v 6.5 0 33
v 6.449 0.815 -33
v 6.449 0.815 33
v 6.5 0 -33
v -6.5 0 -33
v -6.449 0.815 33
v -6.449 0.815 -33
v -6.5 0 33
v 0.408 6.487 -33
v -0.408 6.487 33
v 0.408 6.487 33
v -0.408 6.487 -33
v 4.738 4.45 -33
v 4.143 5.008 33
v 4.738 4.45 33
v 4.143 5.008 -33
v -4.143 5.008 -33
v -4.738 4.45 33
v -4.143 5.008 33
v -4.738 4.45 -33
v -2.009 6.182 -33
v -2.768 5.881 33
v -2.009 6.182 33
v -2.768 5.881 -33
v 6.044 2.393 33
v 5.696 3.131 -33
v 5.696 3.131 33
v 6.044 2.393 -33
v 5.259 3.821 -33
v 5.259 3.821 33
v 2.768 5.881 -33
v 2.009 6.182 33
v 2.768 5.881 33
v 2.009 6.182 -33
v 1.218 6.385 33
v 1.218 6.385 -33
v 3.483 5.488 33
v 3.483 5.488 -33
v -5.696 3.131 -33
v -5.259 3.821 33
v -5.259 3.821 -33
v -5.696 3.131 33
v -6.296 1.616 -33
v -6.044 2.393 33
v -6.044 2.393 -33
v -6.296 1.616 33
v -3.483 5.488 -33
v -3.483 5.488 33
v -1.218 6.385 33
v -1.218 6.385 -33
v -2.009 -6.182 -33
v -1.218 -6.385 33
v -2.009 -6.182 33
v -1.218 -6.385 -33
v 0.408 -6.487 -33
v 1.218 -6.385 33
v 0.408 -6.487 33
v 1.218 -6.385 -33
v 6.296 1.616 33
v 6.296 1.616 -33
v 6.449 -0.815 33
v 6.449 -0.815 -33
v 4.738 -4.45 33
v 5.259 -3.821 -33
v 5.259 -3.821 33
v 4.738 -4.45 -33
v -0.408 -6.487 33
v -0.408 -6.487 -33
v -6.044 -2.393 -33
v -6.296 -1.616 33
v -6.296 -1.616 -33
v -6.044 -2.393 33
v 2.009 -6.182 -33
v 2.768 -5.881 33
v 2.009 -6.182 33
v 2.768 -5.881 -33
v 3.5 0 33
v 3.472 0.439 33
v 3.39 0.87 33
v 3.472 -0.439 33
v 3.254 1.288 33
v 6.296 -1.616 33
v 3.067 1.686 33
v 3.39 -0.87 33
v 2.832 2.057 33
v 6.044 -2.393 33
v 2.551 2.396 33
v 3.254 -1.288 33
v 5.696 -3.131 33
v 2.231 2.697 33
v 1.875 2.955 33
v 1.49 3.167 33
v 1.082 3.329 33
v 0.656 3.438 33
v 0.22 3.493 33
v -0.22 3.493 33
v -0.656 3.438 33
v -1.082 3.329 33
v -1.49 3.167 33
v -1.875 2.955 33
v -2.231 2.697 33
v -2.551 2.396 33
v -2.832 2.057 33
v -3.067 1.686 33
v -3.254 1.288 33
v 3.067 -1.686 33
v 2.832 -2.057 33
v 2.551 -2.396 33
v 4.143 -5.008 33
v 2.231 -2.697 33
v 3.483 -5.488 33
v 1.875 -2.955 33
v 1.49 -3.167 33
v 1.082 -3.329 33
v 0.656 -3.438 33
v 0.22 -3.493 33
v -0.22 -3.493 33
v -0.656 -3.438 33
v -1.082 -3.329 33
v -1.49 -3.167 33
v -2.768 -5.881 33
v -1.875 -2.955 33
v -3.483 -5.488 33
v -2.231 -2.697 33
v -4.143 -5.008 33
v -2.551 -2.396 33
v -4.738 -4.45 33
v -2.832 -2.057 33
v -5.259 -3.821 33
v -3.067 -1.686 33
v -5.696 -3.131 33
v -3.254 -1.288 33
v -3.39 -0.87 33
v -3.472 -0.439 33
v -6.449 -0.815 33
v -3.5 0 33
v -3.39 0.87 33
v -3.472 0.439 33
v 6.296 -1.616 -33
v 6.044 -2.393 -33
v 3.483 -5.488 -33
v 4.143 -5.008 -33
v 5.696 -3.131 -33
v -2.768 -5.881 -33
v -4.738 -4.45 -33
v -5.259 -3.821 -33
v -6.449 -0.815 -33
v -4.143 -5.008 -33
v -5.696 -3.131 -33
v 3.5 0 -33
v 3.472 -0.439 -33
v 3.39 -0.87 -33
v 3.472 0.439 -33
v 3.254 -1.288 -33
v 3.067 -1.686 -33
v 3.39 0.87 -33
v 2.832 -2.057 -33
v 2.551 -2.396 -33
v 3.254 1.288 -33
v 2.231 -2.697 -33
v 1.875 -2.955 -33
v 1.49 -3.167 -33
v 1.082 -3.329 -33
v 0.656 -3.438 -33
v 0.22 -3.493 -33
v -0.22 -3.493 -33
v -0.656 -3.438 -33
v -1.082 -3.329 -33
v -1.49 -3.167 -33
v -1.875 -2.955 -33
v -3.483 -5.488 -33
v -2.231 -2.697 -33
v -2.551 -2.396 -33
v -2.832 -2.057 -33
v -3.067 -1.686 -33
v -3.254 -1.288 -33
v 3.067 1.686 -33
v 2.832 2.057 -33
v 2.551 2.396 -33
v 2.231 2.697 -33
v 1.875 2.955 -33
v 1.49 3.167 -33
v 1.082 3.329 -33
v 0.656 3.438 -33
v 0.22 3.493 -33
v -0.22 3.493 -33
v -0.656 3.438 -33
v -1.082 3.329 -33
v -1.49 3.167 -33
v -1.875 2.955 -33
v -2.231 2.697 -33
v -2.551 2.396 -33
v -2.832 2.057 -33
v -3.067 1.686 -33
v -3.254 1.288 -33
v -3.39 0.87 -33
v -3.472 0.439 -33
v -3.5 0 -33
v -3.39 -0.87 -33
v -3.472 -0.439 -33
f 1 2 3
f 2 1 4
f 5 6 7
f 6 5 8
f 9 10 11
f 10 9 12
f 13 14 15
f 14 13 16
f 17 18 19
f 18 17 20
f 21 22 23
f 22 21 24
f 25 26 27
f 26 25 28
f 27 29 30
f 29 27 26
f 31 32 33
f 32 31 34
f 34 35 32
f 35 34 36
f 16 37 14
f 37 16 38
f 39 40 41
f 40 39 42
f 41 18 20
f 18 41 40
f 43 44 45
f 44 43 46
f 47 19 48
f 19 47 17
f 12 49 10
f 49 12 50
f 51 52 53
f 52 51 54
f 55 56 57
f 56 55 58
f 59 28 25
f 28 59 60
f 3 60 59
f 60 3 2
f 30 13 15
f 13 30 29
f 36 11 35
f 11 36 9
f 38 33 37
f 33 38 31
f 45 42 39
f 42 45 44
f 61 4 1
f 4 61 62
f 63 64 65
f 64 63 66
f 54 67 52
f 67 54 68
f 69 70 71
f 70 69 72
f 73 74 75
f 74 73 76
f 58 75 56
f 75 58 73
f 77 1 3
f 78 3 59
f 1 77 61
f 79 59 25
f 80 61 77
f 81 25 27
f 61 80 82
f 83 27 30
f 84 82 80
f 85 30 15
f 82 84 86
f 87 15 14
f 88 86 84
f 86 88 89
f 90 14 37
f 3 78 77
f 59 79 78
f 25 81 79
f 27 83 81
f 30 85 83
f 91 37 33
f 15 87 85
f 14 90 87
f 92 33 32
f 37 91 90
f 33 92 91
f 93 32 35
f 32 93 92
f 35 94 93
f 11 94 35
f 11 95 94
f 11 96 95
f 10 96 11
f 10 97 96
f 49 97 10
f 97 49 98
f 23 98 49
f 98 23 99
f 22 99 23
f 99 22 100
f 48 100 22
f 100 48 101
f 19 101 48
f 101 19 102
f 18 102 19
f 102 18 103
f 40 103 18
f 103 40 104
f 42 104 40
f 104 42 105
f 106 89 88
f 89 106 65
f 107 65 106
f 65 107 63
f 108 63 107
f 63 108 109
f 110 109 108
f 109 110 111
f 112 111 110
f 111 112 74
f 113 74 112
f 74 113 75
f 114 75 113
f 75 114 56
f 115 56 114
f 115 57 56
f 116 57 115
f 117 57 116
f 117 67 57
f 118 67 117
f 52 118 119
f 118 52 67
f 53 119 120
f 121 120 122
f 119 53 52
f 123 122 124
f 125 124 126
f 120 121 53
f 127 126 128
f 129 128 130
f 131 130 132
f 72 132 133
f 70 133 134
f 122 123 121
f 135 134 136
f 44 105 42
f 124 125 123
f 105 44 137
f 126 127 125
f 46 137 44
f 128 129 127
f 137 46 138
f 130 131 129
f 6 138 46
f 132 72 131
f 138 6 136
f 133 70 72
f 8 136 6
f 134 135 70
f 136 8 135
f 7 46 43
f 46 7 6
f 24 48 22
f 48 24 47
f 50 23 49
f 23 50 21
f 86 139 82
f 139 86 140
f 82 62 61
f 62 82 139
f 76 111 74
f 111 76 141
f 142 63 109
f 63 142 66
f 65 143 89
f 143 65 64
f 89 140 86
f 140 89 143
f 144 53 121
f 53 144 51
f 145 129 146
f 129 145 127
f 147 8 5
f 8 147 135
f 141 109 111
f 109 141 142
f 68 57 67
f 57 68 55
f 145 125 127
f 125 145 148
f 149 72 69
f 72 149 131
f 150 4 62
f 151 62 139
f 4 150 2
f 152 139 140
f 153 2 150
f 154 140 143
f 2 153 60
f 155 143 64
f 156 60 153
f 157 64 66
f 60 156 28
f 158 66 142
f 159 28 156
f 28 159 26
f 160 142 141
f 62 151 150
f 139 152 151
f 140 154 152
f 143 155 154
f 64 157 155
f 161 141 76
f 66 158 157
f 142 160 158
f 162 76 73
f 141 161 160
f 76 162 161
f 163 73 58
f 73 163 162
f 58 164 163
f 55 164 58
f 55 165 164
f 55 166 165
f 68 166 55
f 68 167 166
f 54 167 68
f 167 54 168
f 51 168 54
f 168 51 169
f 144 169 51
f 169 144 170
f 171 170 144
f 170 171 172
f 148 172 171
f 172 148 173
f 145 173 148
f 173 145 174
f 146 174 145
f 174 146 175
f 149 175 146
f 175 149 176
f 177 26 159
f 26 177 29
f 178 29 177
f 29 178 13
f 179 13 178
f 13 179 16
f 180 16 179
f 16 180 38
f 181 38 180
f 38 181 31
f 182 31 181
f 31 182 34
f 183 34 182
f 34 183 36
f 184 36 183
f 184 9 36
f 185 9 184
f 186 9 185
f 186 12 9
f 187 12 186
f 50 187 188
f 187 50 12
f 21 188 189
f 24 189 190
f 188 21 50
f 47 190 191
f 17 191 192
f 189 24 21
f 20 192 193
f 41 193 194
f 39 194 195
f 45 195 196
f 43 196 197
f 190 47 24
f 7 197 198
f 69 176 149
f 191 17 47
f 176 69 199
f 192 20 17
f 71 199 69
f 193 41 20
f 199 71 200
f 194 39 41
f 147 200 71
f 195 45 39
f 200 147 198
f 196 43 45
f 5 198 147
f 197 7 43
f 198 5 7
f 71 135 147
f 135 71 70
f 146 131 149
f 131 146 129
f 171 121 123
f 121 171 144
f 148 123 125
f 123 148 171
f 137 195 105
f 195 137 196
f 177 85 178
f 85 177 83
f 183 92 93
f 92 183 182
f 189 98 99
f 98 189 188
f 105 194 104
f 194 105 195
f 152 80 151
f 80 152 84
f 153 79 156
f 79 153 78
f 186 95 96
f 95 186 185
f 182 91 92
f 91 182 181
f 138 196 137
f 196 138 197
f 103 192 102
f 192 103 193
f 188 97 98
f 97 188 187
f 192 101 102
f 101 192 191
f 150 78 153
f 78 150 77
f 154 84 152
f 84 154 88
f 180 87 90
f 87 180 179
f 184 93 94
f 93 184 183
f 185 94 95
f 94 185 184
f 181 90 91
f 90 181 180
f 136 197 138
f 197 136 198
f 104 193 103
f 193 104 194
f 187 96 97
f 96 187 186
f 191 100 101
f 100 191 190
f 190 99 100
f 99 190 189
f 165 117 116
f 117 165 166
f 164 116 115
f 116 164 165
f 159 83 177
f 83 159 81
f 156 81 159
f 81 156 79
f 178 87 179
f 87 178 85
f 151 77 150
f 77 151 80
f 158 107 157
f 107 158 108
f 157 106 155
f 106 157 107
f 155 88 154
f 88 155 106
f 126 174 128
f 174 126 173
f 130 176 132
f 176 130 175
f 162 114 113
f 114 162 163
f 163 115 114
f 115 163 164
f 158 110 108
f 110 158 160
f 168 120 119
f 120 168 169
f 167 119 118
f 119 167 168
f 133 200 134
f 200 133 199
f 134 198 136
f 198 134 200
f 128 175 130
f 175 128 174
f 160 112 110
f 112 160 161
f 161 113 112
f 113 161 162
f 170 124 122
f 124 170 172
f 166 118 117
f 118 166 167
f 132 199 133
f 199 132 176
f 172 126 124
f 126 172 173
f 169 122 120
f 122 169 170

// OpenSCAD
$fn = 50;


difference() {
	union() {
		translate(v = [0, 0, -33.0000000000]) {
			cylinder(h = 66, r = 6.5000000000);
		}
	}
	union() {
		translate(v = [0, 0, -100.0000000000]) {
			cylinder(h = 200, r = 3.5000000000);
		}
	}
}
